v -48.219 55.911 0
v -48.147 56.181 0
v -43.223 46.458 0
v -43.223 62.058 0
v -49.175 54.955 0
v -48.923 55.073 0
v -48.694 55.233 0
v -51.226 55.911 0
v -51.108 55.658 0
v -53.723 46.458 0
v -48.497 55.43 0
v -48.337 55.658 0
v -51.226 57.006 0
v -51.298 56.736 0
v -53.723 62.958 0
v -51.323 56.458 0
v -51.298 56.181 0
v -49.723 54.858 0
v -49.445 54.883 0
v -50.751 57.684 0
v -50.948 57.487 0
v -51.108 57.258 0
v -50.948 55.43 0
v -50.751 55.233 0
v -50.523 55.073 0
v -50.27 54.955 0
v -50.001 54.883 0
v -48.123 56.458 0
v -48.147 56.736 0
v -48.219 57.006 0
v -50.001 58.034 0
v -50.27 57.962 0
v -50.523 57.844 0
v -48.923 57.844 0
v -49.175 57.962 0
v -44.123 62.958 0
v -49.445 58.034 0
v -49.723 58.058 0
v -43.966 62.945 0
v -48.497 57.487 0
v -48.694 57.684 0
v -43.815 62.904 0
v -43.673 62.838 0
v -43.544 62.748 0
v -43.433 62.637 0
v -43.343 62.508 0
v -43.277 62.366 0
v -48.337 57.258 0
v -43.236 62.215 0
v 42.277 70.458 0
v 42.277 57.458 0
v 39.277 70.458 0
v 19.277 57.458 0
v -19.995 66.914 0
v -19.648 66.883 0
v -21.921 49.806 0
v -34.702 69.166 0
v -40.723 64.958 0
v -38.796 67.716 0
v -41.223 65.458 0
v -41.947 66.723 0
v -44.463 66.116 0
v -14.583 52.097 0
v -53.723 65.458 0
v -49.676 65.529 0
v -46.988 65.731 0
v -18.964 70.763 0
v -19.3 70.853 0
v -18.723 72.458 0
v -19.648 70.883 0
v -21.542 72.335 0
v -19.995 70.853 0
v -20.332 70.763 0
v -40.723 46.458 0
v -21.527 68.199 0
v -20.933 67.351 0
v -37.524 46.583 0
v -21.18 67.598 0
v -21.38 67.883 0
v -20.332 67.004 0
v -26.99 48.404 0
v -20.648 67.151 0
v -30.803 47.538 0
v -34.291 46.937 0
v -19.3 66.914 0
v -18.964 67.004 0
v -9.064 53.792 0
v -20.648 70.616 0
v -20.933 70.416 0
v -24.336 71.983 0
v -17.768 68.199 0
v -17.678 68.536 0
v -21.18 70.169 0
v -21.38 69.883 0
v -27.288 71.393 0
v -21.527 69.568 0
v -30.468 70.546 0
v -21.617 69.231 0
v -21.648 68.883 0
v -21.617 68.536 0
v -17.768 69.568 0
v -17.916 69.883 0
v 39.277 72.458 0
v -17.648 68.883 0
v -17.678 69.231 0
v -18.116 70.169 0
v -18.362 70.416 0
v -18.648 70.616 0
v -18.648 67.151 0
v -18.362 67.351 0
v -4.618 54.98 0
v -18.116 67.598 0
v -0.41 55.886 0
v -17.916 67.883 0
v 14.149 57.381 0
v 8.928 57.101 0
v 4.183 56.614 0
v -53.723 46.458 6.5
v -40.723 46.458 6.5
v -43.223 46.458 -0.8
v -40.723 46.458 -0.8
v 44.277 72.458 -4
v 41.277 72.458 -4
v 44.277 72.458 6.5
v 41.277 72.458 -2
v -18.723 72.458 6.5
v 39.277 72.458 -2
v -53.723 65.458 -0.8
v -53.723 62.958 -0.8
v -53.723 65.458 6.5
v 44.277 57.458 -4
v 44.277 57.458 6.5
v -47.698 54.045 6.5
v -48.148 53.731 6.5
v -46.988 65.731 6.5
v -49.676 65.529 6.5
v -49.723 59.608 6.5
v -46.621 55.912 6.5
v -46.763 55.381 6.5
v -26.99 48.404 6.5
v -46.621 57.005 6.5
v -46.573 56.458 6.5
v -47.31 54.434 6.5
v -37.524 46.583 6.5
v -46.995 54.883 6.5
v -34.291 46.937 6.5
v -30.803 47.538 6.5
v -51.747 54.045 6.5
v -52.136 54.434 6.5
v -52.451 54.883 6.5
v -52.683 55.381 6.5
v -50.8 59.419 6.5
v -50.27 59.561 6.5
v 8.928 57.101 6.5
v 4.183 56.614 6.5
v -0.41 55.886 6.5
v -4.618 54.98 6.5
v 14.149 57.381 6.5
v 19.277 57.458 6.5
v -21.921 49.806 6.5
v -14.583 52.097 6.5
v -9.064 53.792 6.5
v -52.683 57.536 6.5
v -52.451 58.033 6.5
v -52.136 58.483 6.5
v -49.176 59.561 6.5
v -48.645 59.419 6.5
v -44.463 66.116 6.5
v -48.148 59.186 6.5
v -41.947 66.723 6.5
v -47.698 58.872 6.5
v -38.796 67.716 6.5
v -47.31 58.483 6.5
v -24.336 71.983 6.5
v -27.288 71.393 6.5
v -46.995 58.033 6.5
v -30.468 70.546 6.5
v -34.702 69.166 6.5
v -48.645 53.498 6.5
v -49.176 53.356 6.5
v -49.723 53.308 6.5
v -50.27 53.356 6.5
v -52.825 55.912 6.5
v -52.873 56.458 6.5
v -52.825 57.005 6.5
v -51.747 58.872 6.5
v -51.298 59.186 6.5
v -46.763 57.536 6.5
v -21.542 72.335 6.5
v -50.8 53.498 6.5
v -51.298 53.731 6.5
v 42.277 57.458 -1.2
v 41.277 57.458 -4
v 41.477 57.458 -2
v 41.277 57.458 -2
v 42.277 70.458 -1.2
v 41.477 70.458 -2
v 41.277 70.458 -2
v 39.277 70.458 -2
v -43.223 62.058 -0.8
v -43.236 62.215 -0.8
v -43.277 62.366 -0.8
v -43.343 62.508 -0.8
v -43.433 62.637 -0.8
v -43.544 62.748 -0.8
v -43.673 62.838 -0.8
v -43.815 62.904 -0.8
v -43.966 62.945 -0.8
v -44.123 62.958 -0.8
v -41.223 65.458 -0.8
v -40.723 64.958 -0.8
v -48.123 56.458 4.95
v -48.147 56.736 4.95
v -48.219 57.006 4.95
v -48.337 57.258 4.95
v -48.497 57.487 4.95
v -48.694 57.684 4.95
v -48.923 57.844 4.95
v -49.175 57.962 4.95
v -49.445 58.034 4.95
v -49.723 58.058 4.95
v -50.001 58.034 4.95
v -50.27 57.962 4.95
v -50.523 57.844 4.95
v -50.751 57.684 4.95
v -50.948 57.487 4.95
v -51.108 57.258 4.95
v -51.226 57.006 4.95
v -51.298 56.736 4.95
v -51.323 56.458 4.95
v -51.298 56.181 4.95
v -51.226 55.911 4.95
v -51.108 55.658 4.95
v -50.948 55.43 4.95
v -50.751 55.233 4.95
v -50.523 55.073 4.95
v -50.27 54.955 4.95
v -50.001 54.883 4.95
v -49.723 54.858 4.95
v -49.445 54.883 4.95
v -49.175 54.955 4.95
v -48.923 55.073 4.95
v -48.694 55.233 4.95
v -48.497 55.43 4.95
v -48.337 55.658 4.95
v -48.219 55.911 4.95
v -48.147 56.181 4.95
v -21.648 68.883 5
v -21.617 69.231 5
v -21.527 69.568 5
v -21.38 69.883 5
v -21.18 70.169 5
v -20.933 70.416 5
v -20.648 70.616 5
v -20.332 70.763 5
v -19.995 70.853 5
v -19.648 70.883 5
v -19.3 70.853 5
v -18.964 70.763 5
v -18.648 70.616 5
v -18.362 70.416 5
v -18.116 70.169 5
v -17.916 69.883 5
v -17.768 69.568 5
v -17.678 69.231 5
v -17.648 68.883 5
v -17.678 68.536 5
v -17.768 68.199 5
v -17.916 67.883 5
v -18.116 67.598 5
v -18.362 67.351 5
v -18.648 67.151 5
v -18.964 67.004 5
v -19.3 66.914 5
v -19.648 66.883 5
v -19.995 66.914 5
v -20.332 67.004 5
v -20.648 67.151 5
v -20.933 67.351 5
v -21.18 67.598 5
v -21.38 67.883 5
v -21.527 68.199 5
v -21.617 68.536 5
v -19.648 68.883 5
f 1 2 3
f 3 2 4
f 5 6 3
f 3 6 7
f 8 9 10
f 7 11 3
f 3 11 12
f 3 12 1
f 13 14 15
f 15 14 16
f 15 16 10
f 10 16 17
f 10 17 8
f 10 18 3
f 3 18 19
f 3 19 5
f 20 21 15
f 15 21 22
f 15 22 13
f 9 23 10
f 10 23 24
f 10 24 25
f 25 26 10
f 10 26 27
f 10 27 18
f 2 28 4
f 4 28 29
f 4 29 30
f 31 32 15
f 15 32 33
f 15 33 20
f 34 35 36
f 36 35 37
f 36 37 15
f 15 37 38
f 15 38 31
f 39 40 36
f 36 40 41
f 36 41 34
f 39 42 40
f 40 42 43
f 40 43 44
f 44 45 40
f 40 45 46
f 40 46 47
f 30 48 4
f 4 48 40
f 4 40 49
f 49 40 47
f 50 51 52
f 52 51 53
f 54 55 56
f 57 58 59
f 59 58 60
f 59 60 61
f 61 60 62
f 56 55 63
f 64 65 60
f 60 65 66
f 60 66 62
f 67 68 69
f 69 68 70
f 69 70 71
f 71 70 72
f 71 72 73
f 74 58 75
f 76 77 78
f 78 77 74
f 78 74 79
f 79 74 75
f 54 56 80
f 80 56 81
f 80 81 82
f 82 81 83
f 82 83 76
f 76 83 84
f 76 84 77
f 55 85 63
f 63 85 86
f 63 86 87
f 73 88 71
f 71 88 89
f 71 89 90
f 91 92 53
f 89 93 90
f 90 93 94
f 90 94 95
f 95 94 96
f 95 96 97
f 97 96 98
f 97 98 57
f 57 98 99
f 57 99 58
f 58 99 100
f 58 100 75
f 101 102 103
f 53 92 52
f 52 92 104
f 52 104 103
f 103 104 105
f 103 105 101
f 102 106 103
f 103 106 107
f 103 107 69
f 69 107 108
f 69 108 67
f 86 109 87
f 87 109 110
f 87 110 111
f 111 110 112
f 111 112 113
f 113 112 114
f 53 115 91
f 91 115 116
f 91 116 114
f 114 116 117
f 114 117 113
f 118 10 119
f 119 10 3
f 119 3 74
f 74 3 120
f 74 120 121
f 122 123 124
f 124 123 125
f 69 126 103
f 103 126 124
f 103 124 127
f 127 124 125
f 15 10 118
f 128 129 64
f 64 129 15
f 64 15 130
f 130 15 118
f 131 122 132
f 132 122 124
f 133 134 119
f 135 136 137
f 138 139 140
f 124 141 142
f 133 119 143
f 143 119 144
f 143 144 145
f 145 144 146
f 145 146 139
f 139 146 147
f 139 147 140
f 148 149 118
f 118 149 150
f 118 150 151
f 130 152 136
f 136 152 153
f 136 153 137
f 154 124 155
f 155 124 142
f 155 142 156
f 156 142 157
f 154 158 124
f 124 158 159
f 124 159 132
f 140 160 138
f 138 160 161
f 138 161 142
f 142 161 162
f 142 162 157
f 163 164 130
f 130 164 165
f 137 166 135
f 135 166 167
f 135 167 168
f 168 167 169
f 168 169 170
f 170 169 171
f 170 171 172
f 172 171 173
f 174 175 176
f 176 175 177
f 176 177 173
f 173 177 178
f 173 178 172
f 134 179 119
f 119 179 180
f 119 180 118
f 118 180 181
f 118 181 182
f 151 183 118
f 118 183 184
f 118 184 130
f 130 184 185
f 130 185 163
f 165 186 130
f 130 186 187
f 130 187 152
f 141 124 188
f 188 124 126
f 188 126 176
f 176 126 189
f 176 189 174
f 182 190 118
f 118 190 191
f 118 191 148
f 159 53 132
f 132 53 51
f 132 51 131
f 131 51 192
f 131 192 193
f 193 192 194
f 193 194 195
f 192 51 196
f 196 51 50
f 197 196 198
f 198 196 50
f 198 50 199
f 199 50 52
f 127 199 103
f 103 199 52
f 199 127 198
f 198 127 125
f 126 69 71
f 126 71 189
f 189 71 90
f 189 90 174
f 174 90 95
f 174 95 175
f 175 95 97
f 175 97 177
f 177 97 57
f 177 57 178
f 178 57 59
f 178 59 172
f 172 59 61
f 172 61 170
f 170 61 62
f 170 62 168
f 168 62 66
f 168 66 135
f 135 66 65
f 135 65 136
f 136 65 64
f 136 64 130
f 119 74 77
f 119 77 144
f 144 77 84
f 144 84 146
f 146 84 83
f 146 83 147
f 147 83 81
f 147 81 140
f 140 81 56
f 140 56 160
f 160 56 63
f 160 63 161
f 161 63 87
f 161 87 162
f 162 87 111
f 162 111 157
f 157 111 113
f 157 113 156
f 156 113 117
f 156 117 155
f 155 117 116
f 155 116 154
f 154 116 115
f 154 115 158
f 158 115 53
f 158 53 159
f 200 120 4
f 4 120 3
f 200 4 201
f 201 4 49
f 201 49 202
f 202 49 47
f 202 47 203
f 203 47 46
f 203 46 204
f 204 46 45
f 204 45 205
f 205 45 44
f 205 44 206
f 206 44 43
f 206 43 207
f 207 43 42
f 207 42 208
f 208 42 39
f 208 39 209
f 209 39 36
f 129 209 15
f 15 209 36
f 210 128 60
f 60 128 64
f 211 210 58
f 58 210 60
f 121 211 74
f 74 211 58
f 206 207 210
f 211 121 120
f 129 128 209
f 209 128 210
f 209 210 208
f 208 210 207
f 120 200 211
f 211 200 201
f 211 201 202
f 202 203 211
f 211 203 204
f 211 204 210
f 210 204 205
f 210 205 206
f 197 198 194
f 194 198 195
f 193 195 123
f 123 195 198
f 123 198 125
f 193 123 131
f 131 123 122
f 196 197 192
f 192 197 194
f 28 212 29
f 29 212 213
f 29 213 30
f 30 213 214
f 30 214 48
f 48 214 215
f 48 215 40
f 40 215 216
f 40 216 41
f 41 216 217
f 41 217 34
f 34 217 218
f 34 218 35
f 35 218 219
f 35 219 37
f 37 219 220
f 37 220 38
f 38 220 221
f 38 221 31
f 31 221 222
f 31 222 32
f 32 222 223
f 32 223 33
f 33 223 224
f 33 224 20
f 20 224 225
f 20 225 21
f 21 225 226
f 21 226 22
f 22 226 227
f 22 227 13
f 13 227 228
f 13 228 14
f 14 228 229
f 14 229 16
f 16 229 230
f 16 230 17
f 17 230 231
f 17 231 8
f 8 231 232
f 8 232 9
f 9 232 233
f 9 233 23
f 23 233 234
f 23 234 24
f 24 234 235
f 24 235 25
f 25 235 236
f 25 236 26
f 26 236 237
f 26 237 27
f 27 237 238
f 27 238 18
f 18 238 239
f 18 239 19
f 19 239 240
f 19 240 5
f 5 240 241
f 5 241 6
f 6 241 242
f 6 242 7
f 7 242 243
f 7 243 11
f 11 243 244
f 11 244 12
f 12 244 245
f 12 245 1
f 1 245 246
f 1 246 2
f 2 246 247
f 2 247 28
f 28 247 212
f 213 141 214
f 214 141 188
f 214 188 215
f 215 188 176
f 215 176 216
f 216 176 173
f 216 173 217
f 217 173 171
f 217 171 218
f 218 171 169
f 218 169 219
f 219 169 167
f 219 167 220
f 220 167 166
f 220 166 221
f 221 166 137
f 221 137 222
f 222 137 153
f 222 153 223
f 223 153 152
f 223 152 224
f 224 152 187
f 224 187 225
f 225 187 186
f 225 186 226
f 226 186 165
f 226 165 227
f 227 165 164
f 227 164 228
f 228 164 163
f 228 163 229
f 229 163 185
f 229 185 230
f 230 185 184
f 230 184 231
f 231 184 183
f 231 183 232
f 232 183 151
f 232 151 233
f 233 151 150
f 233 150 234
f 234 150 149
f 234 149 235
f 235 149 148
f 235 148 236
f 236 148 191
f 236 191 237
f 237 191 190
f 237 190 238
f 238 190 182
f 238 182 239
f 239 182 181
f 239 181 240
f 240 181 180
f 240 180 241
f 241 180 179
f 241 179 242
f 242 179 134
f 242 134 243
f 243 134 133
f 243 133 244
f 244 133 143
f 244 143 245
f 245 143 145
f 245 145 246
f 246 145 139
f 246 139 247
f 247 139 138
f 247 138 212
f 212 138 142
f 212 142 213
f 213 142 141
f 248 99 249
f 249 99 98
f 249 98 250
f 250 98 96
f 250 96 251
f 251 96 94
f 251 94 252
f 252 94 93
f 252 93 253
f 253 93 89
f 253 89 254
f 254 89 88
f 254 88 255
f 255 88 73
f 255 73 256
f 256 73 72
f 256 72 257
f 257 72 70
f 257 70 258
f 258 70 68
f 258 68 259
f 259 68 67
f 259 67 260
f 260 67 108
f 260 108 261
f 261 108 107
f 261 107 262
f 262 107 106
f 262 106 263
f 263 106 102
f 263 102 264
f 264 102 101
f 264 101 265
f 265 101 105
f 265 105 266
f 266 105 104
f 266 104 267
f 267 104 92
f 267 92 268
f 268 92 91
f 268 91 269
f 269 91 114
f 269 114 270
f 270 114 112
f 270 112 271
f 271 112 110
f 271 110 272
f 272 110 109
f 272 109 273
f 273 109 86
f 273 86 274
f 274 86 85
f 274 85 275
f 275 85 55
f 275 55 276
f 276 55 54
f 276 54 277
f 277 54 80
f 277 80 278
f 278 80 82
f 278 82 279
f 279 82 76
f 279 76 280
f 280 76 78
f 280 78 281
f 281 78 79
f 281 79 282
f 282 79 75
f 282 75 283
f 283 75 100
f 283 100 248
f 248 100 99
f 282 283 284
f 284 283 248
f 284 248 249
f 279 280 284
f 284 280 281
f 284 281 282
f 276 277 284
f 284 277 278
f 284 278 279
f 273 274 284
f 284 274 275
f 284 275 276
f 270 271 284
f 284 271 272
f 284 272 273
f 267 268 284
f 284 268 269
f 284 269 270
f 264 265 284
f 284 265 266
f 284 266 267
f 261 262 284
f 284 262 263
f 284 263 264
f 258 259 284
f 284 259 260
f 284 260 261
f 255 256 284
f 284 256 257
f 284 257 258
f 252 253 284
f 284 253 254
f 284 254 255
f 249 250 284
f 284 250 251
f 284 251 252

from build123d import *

# Parameters (mm, degrees)
SKETCH1_W                                       = 98
SKETCH1_H                                       = 26
BOSS_EXTRUDE1_DEPTH                             = 6.5
BOSS_EXTRUDE2_DEPTH                             = 2
CUT_EXTRUDE2_DEPTH                              = 3
CUT_EXTRUDE2_DEPTH_BACK                         = 7.5
BOSS_EXTRUDE3_DEPTH                             = 0.8
SKETCH6_W                                       = 3
SKETCH6_H                                       = 15
BOSS_EXTRUDE4_DEPTH                             = 2
CHAMFER1_SIZE                                   = 0.8
CSK_FOR_M3_FLAT_HEAD_MACHINE_SCREW1_D           = 3.2
CSK_FOR_M3_FLAT_HEAD_MACHINE_SCREW1_CSINK_D     = 6.3
CSK_FOR_M3_FLAT_HEAD_MACHINE_SCREW1_CSINK_ANGLE = 90
SKETCH12_R                                      = 2
CUT_EXTRUDE3_DEPTH                              = 5


with BuildPart() as part:
    # Sketch1 → Boss-Extrude1 (new body)
    with BuildSketch(Plane.XY):
        with Locations((-4.722668085, 59.458490272)):
            Rectangle(SKETCH1_W, SKETCH1_H)
    extrude(amount=BOSS_EXTRUDE1_DEPTH)

    # Sketch3 → Boss-Extrude2 (add)
    with BuildSketch(Plane(origin=(0, 0, 0), x_dir=(-1, 0, 0), z_dir=(0, 0, -1))):
        Polygon((-44.277331915, 72.458490272), (-44.277331915, 57.458490272), (-42.277331915, 57.458490272), (-42.277331915, 70.458490272), (-39.277331915, 70.458490272), (-39.277331915, 72.458490272), align=None)
    extrude(amount=BOSS_EXTRUDE2_DEPTH)

    # Sketch4 → Cut-Extrude2 (cut, two sides)
    with BuildSketch(Plane(origin=(0, 0, 0), x_dir=(-1, 0, 0), z_dir=(0, 0, -1))) as cut_extrude2_sk:
        with BuildLine():
            Line((-44.277331915, 57.458490272), (-19.277331915, 57.458490272))
            add(Edge.make_bspline(
                [(-19.277331915, 57.458490272), (-7.832942992, 57.458490272), (8.904121741, 55.154017843), (29.529578832, 46.458490272), (40.722668085, 46.458490272)],
                knots=[0, 0, 0, 0, 0.448705595, 1, 1, 1, 1], degree=3))
            Line((40.722668085, 46.458490272), (-44.277331915, 46.458490272))
            Line((-44.277331915, 46.458490272), (-44.277331915, 57.458490272))
        make_face()
        with BuildLine():
            Line((18.722668085, 72.458490272), (53.722668085, 72.458490272))
            Line((53.722668085, 72.458490272), (53.722668085, 65.458490272))
            add(Edge.make_bspline(
                [(18.722668085, 72.458490272), (24.237785364, 72.458490272), (33.045165364, 69.996464802), (44.178399876, 65.548896557), (50.961091511, 65.458490272), (53.722668085, 65.458490272)],
                knots=[0, 0, 0, 0, 0.451492406, 0.761184281, 1, 1, 1, 1], degree=3))
        make_face()
    extrude(amount=CUT_EXTRUDE2_DEPTH, mode=Mode.SUBTRACT)
    extrude(cut_extrude2_sk.sketch, amount=-CUT_EXTRUDE2_DEPTH_BACK, mode=Mode.SUBTRACT)

    # Sketch5 → Boss-Extrude3 (add)
    with BuildSketch(Plane(origin=(0, 0, 0), x_dir=(-1, 0, 0), z_dir=(0, 0, -1))):
        with BuildLine():
            Line((43.222668085, 46.458490272), (40.722668085, 46.458490272))
            Line((40.722668085, 46.458490272), (40.722668085, 64.958490272))
            Line((40.722668085, 64.958490272), (41.222668085, 65.458490272))
            Line((41.222668085, 65.458490272), (53.722668085, 65.458490272))
            Line((53.722668085, 65.458490272), (53.722668085, 62.958490272))
            Line((53.722668085, 62.958490272), (44.122668085, 62.958490272))
            ThreePointArc((44.122668085, 62.958490272), (43.486271982, 62.694886375), (43.222668085, 62.058490272))
            Line((43.222668085, 62.058490272), (43.222668085, 46.458490272))
        make_face()
    extrude(amount=BOSS_EXTRUDE3_DEPTH)

    # Sketch6 → Boss-Extrude4 (add)
    with BuildSketch(Plane(origin=(0, 0, -2), x_dir=(-1, 0, 0), z_dir=(0, 0, -1))):
        with Locations((-42.777331915, 64.958490272)):
            Rectangle(SKETCH6_W, SKETCH6_H)
    extrude(amount=BOSS_EXTRUDE4_DEPTH)

    # Chamfer1
    chamfer1_edges = [part.edges().sort_by_distance(p)[0] for p in [
        (42.277331915, 63.958490272, -2),
    ]]
    chamfer(chamfer1_edges, length=CHAMFER1_SIZE)

    # CSK for M3 Flat Head Machine Screw1 (through all)
    with Locations(Plane.XY.offset(6.5)):
        with Locations((-49.722668085, 56.458490272)):
            CounterSinkHole(CSK_FOR_M3_FLAT_HEAD_MACHINE_SCREW1_D / 2, CSK_FOR_M3_FLAT_HEAD_MACHINE_SCREW1_CSINK_D / 2, counter_sink_angle=CSK_FOR_M3_FLAT_HEAD_MACHINE_SCREW1_CSINK_ANGLE)

    # Sketch12 → Cut-Extrude3 (cut)
    with BuildSketch(Plane(origin=(0, 0, 0), x_dir=(-1, 0, 0), z_dir=(0, 0, -1))):
        with Locations((19.647668085, 68.883490272)):
            Circle(SKETCH12_R)
    extrude(amount=-CUT_EXTRUDE3_DEPTH, mode=Mode.SUBTRACT)


solid = part.part
